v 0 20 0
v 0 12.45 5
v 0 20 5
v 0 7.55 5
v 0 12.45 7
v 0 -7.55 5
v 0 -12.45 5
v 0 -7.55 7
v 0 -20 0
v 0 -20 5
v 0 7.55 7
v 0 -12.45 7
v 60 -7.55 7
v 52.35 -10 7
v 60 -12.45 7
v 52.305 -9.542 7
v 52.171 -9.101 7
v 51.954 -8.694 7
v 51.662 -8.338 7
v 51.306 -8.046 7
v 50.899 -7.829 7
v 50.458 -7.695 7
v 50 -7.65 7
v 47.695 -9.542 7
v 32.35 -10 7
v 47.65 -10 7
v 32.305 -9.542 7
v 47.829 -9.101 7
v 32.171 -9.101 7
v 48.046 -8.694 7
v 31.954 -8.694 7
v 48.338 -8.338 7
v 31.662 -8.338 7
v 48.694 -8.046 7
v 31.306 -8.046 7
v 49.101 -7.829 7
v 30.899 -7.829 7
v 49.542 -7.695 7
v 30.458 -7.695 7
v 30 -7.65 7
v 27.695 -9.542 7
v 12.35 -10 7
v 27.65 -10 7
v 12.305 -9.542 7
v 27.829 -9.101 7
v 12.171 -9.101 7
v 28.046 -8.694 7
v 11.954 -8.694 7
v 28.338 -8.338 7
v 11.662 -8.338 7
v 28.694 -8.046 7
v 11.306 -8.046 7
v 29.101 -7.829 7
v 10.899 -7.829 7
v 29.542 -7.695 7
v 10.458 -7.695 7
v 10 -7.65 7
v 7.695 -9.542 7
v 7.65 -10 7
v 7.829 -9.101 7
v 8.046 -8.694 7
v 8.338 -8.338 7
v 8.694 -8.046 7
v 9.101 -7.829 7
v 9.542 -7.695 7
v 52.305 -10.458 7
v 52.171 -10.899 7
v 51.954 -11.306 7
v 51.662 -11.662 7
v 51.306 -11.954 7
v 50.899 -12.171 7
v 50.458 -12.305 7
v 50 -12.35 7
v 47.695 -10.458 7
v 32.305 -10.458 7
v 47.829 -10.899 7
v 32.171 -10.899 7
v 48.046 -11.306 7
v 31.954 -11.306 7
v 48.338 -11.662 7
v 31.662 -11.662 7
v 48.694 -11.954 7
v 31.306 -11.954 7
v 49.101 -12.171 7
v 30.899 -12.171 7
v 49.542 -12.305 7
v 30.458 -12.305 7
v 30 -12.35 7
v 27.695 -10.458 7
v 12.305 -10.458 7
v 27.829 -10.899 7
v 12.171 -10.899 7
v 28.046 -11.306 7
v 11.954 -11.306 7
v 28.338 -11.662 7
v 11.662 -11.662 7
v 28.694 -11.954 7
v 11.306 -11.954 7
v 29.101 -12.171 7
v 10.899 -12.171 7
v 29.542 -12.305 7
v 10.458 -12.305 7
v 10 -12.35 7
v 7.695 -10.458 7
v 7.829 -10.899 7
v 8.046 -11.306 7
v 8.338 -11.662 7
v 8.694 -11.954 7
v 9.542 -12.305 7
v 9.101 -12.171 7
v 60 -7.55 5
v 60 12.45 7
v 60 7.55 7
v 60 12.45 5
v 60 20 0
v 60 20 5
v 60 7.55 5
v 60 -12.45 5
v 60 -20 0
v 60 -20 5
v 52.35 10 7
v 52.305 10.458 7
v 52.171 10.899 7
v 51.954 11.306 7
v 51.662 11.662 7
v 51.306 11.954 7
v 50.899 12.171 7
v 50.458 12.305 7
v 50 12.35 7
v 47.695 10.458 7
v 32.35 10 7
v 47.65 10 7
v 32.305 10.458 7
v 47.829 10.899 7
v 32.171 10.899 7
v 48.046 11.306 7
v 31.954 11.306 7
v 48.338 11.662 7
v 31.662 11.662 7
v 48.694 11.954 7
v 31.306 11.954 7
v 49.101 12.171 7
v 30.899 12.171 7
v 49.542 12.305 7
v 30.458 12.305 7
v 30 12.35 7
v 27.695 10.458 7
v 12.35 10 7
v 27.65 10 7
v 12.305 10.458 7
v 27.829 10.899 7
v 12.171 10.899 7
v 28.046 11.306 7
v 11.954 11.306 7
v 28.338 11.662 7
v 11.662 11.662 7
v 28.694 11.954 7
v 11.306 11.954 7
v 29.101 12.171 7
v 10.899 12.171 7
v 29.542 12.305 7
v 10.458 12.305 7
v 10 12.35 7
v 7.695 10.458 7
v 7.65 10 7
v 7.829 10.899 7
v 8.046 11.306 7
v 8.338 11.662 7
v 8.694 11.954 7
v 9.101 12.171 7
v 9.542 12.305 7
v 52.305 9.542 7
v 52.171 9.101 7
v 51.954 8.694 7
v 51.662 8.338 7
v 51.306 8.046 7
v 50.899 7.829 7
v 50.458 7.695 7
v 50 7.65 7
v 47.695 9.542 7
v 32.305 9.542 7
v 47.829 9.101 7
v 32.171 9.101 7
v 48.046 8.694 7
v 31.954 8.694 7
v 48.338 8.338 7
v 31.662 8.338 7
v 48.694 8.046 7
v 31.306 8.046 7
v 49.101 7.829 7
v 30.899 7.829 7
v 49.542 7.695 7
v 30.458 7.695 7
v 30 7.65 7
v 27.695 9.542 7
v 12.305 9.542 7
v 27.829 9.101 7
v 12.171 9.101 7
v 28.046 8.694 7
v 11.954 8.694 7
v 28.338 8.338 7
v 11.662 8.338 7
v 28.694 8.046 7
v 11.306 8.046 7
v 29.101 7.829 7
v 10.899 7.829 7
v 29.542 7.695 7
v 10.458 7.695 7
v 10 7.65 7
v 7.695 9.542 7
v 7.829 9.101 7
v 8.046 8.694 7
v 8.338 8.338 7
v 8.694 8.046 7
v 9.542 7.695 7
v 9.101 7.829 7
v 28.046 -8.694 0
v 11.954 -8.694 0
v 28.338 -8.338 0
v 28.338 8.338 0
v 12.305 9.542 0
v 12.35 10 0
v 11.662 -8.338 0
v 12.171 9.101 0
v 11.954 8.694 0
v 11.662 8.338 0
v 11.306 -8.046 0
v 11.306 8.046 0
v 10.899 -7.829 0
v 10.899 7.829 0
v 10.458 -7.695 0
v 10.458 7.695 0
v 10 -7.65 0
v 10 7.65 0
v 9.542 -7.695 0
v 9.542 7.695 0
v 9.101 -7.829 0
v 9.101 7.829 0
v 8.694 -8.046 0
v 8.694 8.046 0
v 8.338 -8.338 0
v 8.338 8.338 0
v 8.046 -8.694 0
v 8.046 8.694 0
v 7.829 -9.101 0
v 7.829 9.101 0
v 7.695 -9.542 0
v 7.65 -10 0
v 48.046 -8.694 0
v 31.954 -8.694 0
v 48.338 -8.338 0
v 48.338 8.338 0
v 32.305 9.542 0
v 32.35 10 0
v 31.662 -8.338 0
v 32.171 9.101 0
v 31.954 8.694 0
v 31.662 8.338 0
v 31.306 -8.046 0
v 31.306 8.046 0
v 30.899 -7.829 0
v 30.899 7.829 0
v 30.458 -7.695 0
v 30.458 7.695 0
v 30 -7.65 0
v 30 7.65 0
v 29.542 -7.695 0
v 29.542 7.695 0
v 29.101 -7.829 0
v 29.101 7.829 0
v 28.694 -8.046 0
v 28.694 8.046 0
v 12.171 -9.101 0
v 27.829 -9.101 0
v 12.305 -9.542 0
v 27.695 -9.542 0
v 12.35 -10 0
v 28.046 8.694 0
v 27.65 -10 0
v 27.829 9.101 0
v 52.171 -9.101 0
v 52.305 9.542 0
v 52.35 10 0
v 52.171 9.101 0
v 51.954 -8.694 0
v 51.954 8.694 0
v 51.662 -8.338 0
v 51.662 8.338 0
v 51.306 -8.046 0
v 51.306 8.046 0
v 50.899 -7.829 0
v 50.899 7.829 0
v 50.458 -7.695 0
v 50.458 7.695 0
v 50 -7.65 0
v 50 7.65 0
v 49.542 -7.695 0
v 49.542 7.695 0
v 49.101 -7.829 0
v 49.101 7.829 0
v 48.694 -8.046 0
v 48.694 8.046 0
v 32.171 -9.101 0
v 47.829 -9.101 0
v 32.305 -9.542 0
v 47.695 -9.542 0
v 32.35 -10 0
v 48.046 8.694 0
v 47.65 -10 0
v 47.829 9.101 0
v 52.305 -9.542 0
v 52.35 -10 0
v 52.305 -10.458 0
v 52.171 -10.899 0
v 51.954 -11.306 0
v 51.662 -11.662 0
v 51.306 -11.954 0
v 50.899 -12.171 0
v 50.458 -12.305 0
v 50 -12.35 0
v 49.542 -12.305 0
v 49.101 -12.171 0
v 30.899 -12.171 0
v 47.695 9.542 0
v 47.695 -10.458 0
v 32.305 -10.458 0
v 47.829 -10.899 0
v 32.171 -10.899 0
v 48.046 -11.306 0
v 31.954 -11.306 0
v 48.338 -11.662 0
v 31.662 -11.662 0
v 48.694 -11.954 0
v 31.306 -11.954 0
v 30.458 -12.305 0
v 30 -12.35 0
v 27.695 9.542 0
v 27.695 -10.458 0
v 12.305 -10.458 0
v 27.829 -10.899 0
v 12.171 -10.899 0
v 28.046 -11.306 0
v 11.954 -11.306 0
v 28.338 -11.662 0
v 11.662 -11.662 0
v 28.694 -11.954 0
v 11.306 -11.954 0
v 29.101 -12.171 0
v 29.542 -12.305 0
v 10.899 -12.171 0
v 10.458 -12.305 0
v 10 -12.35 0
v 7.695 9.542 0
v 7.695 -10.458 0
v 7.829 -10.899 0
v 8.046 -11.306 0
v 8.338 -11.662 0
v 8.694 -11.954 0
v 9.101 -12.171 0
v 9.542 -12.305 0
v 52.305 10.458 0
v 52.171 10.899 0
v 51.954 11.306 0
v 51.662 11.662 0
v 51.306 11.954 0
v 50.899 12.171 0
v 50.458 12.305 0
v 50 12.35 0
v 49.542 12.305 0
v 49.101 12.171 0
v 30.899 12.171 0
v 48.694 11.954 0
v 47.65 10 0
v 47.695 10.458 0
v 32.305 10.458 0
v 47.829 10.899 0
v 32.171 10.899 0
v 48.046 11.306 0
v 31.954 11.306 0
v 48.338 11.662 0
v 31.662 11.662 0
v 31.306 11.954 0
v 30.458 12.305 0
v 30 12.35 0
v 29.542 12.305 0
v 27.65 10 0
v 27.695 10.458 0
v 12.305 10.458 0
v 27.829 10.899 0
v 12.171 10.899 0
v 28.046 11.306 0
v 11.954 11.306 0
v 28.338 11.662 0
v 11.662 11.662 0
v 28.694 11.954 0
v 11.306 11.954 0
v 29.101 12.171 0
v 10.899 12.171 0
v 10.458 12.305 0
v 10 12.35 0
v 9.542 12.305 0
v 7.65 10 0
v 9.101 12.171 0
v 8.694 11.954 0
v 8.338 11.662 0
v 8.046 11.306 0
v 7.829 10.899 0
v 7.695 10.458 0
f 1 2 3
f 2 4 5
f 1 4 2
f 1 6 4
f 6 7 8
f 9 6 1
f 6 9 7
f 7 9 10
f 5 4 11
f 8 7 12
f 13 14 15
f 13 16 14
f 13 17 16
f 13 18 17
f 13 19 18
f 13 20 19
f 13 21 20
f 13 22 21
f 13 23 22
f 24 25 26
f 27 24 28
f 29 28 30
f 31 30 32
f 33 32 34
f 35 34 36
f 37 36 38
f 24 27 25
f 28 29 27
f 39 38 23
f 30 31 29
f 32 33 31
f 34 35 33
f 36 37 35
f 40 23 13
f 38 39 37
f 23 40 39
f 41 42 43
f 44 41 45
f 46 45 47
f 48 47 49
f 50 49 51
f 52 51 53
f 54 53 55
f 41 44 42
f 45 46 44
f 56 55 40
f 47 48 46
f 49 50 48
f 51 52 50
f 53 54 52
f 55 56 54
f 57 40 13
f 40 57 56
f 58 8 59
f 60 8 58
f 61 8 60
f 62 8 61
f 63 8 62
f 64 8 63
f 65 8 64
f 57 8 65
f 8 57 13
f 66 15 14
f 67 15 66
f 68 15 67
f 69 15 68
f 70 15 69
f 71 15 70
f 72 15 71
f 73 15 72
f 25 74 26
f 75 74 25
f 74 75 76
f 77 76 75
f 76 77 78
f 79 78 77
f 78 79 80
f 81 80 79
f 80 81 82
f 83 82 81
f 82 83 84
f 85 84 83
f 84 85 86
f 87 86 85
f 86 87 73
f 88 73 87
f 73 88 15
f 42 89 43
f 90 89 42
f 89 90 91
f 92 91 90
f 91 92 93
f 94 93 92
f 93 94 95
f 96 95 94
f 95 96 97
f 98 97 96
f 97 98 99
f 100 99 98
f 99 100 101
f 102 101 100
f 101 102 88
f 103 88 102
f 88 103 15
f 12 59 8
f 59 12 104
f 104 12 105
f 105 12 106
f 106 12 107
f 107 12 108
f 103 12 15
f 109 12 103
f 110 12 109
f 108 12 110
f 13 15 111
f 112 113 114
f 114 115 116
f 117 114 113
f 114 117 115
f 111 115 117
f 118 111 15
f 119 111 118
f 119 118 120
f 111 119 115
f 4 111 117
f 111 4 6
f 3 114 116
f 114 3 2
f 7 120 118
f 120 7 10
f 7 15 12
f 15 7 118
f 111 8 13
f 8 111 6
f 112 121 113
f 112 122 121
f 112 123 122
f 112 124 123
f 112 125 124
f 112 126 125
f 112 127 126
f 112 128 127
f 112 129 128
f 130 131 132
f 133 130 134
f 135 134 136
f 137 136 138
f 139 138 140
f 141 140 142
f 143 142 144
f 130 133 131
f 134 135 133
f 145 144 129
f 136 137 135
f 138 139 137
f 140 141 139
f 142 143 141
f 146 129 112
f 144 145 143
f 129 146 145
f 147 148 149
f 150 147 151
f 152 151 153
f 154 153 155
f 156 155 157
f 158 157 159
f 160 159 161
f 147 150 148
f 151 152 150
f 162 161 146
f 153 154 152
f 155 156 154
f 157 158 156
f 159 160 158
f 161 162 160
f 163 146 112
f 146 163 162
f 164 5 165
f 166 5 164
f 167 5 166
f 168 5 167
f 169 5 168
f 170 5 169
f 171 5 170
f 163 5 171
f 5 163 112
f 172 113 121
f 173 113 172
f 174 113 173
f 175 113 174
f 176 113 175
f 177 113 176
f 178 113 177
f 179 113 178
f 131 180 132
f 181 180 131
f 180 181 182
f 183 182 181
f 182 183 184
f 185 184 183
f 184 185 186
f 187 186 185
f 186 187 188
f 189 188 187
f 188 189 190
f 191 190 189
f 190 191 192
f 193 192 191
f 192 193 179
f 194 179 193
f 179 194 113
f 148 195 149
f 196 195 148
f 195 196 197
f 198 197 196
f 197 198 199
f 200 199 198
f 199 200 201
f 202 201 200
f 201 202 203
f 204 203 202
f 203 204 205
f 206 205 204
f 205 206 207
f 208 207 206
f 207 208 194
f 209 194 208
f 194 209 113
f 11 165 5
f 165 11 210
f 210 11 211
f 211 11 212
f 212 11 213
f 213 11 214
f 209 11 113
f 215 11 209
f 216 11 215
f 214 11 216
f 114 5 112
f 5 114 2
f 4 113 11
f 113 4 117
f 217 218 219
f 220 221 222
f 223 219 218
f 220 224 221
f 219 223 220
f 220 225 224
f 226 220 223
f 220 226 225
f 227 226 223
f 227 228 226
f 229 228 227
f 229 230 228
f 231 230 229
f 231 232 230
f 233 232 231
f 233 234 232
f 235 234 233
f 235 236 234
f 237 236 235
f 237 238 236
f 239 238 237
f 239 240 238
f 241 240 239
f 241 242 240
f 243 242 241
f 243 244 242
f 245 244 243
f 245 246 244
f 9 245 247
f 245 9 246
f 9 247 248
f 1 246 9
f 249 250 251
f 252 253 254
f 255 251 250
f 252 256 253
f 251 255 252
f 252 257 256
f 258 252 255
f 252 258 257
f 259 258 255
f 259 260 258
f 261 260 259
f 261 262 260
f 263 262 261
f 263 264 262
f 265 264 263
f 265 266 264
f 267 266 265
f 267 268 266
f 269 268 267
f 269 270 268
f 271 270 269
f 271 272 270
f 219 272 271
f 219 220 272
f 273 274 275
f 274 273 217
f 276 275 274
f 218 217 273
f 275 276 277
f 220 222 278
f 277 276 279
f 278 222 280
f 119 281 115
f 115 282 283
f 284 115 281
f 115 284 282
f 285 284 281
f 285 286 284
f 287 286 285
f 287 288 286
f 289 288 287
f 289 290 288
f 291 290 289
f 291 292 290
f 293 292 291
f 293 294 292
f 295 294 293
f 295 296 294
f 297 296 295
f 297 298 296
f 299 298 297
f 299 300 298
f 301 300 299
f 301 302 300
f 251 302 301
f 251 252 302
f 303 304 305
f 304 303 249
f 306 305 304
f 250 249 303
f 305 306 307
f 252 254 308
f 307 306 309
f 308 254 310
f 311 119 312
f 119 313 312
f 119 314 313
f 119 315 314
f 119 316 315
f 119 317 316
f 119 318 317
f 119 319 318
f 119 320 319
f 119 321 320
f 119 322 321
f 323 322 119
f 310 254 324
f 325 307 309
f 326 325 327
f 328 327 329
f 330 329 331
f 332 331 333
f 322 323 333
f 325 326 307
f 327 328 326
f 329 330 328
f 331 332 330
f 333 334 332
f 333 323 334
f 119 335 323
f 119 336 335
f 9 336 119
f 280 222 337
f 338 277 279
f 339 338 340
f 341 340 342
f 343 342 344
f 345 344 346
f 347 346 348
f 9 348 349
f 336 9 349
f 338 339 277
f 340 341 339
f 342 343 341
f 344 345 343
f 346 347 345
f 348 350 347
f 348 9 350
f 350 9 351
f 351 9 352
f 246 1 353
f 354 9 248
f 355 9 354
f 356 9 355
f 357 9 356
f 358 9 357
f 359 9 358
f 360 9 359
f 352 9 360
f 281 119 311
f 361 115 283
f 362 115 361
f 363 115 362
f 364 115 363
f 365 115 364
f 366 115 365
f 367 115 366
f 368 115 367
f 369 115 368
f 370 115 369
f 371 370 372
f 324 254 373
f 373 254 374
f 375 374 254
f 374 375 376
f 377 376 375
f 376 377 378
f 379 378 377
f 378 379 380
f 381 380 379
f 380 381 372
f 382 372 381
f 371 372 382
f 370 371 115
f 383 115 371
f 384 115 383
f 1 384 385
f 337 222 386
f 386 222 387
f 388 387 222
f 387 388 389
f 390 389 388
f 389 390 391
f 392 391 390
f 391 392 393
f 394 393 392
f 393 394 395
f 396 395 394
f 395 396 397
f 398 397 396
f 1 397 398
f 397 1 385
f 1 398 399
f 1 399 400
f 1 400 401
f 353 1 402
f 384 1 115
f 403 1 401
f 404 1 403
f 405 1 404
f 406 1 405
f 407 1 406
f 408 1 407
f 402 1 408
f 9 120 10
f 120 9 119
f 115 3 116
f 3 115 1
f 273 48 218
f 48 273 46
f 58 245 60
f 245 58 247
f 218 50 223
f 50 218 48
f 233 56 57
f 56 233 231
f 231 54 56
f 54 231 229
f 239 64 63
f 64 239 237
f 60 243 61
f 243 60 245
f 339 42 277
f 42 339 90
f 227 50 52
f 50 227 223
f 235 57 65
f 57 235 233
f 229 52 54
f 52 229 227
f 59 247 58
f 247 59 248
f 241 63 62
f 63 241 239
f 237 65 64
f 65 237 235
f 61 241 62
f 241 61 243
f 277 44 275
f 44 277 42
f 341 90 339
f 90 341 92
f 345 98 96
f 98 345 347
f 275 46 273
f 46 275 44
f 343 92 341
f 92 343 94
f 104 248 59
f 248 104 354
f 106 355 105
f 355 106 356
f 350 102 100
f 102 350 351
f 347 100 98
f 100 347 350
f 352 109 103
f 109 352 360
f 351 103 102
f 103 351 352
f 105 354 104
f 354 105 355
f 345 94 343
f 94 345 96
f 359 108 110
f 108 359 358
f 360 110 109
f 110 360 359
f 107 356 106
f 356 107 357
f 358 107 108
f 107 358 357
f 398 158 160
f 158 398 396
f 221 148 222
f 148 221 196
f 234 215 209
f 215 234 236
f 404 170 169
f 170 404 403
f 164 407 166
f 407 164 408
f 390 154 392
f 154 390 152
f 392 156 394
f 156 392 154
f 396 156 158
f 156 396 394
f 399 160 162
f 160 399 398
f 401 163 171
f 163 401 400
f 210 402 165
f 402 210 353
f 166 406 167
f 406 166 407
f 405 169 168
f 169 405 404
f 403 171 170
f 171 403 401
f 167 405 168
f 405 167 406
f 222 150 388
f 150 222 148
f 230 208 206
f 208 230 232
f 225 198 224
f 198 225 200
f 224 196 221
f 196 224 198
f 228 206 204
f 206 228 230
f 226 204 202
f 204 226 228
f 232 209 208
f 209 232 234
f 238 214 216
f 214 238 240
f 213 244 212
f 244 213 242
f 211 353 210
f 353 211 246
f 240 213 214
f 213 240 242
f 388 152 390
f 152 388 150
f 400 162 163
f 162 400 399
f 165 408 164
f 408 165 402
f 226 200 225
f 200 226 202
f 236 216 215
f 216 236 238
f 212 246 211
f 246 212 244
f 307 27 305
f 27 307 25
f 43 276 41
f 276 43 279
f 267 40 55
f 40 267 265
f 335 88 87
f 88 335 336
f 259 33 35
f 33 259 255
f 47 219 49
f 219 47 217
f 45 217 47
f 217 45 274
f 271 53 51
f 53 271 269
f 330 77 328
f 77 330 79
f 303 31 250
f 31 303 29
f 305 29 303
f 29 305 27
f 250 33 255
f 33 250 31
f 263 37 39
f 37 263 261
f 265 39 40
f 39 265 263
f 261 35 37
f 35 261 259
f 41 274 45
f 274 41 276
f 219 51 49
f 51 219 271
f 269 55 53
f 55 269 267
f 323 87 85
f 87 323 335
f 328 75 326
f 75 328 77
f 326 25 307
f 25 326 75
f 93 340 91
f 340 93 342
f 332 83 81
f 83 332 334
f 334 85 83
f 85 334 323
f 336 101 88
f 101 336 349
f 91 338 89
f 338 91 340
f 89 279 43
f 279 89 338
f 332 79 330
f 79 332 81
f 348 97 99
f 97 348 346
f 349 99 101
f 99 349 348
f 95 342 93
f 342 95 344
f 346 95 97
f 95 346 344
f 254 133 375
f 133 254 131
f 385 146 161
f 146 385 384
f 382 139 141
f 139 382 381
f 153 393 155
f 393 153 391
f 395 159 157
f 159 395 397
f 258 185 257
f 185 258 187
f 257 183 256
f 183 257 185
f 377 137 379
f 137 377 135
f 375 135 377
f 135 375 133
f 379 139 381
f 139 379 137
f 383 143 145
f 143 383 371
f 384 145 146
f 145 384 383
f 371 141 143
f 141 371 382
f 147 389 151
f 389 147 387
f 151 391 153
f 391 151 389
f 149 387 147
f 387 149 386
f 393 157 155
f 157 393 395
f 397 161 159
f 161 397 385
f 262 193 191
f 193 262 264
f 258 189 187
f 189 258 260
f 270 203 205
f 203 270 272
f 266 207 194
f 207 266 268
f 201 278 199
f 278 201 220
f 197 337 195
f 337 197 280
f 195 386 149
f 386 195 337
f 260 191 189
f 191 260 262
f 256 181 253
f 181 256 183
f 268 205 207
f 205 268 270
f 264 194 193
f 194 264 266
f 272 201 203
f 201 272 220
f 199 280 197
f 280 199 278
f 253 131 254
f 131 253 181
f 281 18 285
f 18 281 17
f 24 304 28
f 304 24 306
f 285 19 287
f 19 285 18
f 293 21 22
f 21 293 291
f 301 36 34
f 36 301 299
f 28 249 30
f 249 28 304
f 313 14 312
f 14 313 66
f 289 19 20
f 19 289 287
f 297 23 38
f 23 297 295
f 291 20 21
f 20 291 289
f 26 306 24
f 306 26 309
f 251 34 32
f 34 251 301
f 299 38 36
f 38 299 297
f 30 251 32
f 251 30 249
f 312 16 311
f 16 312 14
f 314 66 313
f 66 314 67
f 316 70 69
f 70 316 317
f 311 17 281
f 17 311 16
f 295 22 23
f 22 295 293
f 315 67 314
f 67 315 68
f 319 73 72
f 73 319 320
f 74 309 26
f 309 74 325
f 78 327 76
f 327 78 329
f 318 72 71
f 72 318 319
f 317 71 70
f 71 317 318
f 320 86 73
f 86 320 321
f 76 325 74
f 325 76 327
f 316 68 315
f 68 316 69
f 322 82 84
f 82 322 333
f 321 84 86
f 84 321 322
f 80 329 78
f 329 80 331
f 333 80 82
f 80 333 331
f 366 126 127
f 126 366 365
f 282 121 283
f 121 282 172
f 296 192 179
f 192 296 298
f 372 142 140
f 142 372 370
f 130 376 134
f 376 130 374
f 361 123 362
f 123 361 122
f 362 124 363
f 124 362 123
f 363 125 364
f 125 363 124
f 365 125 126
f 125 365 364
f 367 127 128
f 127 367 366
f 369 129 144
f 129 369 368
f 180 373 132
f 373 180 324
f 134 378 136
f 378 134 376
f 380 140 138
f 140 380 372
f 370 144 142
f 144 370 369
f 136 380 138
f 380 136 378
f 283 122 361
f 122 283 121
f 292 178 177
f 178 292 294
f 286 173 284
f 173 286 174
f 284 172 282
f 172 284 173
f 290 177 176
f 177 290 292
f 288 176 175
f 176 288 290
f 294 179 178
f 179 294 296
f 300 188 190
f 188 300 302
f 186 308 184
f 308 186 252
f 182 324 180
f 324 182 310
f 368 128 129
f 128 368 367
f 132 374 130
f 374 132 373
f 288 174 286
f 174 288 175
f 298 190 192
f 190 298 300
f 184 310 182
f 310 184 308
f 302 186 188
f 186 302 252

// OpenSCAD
// CNC Engraver
// https://github.com/mprochnow/CNC-Engraver
// Original author: Martin J. Prochnow <email@martin-prochnow.de>
// License: CC BY-SA 4.0 (Attribution-ShareAlike 4.0 International, http://creativecommons.org/licenses/by-sa/4.0/)

// This file contains the template for drilling the needed holes into the
// aluminium extrusions.

difference() {
    union() {
        translate([0, -20])
            cube([60, 40, 5]);
        
        for (i=[-1, 1])
        translate([0, -4.9/2+i*10, 5])
            cube([60, 4.9, 2]);
    }
    for (i=[10, 30, 50])
    for (j=[-1, 1])
    translate([i, j*10, -0.1])
        cylinder(d=4.7, h=5+2+0.2, $fn=32);
}
